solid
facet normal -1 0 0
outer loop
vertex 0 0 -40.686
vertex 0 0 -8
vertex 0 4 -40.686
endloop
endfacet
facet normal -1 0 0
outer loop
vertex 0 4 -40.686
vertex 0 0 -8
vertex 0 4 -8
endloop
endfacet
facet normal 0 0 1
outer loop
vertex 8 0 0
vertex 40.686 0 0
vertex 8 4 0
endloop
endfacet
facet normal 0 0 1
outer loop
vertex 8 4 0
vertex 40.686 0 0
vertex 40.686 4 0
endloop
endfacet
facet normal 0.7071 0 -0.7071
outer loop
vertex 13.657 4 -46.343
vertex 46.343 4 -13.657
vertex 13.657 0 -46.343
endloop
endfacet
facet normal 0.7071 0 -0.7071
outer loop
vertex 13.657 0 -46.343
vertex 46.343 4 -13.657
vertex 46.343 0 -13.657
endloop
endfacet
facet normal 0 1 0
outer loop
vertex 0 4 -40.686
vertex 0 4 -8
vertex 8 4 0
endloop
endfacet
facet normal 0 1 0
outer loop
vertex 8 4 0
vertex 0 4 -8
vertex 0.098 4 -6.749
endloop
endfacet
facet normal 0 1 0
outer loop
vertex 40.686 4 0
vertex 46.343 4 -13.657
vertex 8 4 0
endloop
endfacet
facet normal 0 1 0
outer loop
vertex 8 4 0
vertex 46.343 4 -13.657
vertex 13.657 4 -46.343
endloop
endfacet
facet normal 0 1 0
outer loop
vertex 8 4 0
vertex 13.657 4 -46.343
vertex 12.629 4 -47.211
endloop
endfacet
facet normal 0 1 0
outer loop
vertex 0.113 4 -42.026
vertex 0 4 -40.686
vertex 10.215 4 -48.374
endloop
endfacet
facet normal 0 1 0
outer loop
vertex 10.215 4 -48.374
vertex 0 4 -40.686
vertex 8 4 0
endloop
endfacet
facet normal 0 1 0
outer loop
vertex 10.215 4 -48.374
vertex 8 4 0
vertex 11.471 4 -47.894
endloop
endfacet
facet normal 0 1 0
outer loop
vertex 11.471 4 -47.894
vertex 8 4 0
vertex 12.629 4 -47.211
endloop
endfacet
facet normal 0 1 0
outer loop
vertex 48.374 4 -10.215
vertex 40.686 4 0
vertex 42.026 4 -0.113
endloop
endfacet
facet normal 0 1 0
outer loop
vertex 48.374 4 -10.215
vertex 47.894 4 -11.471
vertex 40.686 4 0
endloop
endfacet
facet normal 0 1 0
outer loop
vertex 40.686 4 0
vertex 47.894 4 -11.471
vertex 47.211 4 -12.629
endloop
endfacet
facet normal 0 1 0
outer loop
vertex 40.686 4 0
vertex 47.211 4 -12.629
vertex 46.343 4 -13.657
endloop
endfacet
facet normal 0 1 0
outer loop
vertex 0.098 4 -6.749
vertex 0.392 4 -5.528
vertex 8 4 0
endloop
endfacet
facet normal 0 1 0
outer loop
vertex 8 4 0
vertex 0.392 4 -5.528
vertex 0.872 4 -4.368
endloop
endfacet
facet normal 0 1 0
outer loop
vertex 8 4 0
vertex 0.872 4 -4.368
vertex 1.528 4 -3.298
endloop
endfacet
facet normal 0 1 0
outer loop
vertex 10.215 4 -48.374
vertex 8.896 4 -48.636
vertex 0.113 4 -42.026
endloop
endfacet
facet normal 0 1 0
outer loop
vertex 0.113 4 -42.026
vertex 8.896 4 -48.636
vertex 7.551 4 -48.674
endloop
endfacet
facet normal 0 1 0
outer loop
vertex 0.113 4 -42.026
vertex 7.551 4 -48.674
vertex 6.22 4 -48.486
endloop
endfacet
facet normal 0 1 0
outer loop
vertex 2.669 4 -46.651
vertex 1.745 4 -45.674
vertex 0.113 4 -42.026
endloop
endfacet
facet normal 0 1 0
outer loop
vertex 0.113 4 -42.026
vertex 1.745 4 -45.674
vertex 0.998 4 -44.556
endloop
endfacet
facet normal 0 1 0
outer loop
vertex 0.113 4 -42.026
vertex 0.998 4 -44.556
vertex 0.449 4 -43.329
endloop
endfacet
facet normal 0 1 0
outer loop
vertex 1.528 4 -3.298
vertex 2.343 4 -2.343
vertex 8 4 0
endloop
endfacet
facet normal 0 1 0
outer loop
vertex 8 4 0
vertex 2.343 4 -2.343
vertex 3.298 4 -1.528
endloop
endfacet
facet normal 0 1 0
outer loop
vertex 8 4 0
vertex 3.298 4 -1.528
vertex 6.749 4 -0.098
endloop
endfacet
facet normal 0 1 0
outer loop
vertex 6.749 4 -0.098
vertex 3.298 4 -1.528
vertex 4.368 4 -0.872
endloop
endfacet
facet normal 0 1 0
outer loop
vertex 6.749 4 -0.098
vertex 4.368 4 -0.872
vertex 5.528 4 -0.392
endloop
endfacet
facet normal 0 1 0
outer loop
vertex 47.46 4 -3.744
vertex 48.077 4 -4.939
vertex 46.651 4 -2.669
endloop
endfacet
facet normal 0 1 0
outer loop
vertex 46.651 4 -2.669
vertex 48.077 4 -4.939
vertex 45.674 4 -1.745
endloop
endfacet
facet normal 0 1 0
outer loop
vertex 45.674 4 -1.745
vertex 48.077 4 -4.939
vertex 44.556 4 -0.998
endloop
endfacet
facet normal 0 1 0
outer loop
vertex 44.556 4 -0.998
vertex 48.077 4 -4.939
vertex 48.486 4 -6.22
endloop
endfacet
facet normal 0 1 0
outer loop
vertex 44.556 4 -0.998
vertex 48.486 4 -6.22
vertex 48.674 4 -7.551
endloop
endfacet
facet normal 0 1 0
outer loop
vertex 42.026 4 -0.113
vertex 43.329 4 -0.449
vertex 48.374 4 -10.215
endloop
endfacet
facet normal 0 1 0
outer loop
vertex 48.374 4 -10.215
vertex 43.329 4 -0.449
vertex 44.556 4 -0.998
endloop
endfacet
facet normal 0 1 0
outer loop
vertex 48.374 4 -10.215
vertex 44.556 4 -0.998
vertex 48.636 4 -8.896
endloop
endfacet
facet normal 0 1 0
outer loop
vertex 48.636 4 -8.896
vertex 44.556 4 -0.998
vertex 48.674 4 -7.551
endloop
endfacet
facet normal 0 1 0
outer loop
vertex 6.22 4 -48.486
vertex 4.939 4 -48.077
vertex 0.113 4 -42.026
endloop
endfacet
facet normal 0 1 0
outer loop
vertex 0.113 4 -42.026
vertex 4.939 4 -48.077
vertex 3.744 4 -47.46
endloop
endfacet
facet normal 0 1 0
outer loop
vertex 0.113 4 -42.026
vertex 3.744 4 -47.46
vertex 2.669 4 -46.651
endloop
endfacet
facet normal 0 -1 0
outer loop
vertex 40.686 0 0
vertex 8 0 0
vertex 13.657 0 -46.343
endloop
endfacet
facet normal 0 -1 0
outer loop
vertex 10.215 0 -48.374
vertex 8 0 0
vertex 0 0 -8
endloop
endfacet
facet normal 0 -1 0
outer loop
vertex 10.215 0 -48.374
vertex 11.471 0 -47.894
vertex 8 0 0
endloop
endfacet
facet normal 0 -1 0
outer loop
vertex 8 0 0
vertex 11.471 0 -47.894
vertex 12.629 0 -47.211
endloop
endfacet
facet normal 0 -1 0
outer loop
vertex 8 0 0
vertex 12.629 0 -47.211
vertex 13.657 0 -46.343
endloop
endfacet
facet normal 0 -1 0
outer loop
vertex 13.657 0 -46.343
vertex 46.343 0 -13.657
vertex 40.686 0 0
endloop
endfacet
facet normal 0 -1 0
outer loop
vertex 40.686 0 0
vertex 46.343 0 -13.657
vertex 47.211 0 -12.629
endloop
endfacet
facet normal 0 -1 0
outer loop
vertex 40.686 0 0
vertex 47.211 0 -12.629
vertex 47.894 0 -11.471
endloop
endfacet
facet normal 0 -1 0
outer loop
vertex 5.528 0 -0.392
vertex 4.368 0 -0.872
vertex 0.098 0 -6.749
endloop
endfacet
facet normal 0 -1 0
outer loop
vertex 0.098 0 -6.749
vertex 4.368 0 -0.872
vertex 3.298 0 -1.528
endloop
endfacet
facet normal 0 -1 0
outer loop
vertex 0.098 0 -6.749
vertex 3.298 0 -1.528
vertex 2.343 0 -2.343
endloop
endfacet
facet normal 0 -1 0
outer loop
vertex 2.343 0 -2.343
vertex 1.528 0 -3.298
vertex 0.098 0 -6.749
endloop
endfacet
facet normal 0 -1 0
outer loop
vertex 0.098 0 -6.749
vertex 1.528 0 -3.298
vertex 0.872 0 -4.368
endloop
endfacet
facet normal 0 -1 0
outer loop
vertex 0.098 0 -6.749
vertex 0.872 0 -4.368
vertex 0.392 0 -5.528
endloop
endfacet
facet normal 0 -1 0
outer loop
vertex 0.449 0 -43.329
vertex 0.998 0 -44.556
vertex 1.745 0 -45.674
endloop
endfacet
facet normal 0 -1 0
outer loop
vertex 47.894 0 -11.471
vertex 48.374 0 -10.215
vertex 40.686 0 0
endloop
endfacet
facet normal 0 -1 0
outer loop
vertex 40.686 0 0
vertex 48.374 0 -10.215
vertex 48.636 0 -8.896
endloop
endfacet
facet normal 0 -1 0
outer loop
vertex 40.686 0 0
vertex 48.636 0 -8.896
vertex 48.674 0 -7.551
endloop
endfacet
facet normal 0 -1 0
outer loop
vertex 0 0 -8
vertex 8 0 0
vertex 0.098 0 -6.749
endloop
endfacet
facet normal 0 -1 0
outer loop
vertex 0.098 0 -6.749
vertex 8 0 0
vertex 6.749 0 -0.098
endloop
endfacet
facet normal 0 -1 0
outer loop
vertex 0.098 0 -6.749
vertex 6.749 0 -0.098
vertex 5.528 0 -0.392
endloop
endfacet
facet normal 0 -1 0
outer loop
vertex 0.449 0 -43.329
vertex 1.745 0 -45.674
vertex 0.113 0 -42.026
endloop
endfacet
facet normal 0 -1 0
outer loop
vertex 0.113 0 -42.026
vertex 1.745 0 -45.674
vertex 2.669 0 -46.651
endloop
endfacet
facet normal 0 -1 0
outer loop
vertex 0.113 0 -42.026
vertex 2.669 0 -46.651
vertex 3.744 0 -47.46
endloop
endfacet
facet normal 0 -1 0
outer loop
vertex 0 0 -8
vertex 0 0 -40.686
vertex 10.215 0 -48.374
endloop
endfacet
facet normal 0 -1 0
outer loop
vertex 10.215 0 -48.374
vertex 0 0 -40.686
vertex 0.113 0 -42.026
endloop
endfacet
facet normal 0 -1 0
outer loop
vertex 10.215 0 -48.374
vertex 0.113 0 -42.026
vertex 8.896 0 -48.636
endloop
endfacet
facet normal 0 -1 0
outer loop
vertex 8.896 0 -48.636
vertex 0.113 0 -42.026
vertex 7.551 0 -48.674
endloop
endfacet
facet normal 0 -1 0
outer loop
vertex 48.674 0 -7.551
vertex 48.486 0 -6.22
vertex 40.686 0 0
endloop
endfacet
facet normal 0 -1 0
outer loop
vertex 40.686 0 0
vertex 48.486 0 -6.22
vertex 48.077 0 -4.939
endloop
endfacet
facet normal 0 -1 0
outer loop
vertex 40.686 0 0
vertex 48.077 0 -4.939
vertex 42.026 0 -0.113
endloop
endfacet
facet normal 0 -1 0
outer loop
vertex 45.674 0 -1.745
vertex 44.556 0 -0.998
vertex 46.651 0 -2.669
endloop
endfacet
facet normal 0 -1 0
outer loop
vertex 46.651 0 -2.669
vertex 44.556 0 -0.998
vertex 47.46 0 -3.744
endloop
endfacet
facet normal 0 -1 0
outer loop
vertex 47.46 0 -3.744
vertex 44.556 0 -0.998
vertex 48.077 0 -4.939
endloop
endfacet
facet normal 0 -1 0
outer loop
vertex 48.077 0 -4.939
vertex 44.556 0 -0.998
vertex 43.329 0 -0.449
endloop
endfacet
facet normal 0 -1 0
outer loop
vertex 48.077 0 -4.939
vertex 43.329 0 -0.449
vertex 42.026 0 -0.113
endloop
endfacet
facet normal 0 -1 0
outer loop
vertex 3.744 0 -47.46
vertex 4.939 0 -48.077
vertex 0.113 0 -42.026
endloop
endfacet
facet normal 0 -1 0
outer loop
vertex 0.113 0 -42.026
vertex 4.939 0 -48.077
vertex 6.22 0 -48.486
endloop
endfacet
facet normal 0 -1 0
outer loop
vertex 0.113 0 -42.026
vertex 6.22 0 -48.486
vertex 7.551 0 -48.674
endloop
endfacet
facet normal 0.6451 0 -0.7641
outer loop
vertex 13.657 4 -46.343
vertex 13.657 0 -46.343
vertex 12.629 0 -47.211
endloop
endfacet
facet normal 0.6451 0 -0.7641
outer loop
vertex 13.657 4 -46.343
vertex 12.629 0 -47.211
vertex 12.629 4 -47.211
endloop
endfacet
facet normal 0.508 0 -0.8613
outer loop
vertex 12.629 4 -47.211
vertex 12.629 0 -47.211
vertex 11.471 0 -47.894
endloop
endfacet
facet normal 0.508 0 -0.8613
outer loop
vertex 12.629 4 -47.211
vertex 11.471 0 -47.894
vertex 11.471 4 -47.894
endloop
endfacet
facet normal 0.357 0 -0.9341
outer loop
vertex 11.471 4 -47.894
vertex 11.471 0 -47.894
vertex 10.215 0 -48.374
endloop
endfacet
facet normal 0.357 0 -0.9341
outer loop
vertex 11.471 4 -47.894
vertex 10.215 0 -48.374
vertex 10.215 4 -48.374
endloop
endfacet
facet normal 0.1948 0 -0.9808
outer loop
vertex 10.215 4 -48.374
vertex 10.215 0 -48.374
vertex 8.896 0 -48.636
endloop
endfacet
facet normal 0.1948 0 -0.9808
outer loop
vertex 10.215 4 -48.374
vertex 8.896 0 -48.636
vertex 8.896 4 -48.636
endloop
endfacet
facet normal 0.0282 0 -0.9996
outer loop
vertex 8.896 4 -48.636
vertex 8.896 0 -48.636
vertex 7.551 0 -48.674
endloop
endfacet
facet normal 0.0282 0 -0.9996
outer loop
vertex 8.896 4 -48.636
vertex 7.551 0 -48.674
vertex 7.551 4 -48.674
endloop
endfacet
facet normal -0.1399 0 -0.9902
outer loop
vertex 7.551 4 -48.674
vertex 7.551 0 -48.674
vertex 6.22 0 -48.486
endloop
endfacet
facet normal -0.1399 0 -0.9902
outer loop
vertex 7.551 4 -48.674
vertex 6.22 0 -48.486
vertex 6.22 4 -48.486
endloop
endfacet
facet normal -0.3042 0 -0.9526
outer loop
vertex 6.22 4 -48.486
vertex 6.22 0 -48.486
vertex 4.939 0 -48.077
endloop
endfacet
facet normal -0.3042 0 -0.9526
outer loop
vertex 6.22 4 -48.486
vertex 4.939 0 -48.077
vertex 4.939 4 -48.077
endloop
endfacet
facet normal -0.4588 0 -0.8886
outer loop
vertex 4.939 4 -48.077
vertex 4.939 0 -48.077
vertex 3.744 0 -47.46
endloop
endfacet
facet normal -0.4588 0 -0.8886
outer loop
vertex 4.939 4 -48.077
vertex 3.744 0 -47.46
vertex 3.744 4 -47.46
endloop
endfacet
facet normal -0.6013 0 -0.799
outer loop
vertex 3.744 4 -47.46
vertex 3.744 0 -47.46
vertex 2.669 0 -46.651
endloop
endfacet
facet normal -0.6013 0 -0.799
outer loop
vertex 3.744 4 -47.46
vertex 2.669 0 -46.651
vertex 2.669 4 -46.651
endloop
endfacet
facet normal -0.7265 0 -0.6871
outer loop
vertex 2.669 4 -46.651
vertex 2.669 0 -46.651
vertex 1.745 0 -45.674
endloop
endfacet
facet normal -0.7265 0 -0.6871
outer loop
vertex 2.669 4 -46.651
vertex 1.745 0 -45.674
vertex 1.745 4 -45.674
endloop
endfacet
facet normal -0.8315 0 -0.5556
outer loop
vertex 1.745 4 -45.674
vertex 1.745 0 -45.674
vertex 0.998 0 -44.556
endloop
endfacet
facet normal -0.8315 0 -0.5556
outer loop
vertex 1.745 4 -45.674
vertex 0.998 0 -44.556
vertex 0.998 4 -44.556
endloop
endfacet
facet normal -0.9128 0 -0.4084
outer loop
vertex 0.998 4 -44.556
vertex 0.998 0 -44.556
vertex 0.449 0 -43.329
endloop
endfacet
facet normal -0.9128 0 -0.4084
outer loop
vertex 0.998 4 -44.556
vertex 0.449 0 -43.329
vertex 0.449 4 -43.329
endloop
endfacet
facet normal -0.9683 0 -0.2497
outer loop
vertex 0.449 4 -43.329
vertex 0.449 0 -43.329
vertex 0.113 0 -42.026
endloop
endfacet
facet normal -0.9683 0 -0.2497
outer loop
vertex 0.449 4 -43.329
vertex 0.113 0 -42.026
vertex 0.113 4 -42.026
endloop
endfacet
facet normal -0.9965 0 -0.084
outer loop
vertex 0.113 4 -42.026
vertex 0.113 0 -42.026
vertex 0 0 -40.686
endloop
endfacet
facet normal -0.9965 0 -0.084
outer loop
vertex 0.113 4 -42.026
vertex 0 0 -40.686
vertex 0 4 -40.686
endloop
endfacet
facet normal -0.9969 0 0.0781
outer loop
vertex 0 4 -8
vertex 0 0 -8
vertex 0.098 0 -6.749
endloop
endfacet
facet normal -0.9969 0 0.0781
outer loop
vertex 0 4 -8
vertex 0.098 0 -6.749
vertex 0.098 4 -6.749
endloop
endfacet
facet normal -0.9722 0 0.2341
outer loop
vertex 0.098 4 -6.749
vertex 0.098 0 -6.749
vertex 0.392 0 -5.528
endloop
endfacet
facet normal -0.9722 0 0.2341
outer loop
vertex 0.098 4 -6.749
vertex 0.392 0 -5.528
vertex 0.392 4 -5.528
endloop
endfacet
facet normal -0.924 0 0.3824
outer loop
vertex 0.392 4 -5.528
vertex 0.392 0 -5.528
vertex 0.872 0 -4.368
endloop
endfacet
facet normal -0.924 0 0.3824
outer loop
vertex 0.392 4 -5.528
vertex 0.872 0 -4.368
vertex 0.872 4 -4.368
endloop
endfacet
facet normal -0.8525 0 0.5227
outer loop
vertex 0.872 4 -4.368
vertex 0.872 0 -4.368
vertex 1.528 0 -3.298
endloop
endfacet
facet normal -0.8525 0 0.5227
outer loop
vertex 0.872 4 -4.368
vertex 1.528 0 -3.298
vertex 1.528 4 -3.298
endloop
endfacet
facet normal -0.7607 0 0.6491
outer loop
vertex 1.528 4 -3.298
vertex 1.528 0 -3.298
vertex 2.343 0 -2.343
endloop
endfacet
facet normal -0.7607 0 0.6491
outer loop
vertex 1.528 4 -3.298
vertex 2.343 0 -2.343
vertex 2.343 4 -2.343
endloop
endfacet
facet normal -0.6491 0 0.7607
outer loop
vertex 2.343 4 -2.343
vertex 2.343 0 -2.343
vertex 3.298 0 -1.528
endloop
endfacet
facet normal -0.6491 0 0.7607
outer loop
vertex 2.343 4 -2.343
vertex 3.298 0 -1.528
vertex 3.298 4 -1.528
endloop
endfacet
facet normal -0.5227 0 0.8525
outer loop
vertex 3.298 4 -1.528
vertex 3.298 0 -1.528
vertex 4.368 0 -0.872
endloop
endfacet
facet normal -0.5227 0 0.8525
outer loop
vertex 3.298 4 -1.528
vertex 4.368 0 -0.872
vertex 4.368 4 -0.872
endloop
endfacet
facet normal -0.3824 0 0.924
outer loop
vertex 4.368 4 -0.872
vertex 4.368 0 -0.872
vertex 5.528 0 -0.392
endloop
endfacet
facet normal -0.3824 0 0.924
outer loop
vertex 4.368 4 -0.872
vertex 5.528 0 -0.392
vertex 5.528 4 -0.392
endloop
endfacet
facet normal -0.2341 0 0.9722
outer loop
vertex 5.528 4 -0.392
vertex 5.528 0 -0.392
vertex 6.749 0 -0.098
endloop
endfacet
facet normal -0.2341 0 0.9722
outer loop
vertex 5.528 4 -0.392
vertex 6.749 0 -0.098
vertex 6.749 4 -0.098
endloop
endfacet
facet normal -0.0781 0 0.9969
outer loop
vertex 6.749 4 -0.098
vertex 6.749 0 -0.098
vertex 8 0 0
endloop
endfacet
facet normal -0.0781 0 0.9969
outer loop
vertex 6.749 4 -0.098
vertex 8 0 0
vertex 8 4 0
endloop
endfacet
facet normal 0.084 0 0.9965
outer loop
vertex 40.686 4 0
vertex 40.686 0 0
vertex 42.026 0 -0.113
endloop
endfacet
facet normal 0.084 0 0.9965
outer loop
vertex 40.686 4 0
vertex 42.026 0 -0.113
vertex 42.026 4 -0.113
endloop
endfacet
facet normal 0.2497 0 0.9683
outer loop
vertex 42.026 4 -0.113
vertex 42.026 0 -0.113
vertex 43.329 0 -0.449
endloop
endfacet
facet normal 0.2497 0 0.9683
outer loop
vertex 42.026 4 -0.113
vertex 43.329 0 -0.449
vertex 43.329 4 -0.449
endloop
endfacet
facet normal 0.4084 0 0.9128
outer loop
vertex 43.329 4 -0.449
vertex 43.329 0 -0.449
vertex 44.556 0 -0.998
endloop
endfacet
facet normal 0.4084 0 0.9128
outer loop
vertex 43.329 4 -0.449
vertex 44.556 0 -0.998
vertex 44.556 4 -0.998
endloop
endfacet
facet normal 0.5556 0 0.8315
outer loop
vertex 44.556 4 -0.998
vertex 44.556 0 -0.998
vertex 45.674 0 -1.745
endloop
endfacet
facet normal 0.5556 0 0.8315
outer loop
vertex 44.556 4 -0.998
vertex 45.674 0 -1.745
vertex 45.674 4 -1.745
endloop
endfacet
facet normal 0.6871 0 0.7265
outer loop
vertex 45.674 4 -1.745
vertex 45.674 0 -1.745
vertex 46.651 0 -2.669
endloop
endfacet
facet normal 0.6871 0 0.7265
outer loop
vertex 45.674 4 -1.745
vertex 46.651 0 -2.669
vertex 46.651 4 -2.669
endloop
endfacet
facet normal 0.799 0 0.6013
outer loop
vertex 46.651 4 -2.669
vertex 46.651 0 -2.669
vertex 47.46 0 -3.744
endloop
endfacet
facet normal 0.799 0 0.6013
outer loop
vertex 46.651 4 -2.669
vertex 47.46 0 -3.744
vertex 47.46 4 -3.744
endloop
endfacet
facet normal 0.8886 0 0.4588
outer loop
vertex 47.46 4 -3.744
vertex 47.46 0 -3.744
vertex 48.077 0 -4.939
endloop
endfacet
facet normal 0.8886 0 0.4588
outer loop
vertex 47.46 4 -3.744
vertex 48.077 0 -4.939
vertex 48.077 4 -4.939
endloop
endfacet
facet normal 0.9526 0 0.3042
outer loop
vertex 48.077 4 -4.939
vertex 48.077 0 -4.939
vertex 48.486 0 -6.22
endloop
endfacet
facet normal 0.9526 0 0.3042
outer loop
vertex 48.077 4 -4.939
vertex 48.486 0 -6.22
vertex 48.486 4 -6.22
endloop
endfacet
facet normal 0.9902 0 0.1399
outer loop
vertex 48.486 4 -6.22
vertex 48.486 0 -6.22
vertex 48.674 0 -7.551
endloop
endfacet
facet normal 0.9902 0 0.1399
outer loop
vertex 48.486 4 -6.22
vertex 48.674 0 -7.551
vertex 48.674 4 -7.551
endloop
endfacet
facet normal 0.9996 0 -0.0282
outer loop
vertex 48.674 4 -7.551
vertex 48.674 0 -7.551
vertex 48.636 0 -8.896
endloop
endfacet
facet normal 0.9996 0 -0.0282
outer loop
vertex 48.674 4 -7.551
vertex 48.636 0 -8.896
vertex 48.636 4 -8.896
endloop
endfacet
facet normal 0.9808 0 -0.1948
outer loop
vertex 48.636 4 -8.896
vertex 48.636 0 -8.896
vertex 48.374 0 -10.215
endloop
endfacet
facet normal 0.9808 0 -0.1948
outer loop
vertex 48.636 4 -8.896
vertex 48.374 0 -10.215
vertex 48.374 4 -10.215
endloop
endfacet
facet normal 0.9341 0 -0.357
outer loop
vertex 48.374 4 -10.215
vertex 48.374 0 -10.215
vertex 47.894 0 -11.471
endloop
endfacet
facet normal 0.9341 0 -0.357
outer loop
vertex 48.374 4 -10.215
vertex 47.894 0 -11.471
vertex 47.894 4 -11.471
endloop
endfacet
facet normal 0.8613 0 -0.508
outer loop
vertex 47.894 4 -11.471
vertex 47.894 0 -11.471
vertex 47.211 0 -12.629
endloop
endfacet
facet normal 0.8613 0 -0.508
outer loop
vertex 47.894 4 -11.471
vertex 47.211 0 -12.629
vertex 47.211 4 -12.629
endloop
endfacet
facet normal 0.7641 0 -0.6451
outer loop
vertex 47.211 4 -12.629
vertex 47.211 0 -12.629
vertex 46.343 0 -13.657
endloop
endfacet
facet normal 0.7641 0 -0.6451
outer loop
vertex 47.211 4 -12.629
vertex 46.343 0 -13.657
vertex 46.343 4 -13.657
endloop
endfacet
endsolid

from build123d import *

# Parameters (mm, degrees)
EXTRUDE_1_DEPTH = 4
FILLET_1_R      = 8


with BuildPart() as part:
    # 草图1 → 凸台-拉伸1 (new body)
    with BuildSketch(Plane(origin=(0, 0, 0), x_dir=(1, 0, 0), z_dir=(0, 1, 0))):
        Polygon((0, 0), (60, 0), (0, 60), align=None)
    extrude(amount=EXTRUDE_1_DEPTH)

    # 圆角1
    fillet_1_edges = [part.edges().sort_by_distance(p)[0] for p in [
        (0, 2, -60),
        (60, 2, 0),
        (0, 2, 0),
    ]]
    fillet(fillet_1_edges, radius=FILLET_1_R)


solid = part.part
